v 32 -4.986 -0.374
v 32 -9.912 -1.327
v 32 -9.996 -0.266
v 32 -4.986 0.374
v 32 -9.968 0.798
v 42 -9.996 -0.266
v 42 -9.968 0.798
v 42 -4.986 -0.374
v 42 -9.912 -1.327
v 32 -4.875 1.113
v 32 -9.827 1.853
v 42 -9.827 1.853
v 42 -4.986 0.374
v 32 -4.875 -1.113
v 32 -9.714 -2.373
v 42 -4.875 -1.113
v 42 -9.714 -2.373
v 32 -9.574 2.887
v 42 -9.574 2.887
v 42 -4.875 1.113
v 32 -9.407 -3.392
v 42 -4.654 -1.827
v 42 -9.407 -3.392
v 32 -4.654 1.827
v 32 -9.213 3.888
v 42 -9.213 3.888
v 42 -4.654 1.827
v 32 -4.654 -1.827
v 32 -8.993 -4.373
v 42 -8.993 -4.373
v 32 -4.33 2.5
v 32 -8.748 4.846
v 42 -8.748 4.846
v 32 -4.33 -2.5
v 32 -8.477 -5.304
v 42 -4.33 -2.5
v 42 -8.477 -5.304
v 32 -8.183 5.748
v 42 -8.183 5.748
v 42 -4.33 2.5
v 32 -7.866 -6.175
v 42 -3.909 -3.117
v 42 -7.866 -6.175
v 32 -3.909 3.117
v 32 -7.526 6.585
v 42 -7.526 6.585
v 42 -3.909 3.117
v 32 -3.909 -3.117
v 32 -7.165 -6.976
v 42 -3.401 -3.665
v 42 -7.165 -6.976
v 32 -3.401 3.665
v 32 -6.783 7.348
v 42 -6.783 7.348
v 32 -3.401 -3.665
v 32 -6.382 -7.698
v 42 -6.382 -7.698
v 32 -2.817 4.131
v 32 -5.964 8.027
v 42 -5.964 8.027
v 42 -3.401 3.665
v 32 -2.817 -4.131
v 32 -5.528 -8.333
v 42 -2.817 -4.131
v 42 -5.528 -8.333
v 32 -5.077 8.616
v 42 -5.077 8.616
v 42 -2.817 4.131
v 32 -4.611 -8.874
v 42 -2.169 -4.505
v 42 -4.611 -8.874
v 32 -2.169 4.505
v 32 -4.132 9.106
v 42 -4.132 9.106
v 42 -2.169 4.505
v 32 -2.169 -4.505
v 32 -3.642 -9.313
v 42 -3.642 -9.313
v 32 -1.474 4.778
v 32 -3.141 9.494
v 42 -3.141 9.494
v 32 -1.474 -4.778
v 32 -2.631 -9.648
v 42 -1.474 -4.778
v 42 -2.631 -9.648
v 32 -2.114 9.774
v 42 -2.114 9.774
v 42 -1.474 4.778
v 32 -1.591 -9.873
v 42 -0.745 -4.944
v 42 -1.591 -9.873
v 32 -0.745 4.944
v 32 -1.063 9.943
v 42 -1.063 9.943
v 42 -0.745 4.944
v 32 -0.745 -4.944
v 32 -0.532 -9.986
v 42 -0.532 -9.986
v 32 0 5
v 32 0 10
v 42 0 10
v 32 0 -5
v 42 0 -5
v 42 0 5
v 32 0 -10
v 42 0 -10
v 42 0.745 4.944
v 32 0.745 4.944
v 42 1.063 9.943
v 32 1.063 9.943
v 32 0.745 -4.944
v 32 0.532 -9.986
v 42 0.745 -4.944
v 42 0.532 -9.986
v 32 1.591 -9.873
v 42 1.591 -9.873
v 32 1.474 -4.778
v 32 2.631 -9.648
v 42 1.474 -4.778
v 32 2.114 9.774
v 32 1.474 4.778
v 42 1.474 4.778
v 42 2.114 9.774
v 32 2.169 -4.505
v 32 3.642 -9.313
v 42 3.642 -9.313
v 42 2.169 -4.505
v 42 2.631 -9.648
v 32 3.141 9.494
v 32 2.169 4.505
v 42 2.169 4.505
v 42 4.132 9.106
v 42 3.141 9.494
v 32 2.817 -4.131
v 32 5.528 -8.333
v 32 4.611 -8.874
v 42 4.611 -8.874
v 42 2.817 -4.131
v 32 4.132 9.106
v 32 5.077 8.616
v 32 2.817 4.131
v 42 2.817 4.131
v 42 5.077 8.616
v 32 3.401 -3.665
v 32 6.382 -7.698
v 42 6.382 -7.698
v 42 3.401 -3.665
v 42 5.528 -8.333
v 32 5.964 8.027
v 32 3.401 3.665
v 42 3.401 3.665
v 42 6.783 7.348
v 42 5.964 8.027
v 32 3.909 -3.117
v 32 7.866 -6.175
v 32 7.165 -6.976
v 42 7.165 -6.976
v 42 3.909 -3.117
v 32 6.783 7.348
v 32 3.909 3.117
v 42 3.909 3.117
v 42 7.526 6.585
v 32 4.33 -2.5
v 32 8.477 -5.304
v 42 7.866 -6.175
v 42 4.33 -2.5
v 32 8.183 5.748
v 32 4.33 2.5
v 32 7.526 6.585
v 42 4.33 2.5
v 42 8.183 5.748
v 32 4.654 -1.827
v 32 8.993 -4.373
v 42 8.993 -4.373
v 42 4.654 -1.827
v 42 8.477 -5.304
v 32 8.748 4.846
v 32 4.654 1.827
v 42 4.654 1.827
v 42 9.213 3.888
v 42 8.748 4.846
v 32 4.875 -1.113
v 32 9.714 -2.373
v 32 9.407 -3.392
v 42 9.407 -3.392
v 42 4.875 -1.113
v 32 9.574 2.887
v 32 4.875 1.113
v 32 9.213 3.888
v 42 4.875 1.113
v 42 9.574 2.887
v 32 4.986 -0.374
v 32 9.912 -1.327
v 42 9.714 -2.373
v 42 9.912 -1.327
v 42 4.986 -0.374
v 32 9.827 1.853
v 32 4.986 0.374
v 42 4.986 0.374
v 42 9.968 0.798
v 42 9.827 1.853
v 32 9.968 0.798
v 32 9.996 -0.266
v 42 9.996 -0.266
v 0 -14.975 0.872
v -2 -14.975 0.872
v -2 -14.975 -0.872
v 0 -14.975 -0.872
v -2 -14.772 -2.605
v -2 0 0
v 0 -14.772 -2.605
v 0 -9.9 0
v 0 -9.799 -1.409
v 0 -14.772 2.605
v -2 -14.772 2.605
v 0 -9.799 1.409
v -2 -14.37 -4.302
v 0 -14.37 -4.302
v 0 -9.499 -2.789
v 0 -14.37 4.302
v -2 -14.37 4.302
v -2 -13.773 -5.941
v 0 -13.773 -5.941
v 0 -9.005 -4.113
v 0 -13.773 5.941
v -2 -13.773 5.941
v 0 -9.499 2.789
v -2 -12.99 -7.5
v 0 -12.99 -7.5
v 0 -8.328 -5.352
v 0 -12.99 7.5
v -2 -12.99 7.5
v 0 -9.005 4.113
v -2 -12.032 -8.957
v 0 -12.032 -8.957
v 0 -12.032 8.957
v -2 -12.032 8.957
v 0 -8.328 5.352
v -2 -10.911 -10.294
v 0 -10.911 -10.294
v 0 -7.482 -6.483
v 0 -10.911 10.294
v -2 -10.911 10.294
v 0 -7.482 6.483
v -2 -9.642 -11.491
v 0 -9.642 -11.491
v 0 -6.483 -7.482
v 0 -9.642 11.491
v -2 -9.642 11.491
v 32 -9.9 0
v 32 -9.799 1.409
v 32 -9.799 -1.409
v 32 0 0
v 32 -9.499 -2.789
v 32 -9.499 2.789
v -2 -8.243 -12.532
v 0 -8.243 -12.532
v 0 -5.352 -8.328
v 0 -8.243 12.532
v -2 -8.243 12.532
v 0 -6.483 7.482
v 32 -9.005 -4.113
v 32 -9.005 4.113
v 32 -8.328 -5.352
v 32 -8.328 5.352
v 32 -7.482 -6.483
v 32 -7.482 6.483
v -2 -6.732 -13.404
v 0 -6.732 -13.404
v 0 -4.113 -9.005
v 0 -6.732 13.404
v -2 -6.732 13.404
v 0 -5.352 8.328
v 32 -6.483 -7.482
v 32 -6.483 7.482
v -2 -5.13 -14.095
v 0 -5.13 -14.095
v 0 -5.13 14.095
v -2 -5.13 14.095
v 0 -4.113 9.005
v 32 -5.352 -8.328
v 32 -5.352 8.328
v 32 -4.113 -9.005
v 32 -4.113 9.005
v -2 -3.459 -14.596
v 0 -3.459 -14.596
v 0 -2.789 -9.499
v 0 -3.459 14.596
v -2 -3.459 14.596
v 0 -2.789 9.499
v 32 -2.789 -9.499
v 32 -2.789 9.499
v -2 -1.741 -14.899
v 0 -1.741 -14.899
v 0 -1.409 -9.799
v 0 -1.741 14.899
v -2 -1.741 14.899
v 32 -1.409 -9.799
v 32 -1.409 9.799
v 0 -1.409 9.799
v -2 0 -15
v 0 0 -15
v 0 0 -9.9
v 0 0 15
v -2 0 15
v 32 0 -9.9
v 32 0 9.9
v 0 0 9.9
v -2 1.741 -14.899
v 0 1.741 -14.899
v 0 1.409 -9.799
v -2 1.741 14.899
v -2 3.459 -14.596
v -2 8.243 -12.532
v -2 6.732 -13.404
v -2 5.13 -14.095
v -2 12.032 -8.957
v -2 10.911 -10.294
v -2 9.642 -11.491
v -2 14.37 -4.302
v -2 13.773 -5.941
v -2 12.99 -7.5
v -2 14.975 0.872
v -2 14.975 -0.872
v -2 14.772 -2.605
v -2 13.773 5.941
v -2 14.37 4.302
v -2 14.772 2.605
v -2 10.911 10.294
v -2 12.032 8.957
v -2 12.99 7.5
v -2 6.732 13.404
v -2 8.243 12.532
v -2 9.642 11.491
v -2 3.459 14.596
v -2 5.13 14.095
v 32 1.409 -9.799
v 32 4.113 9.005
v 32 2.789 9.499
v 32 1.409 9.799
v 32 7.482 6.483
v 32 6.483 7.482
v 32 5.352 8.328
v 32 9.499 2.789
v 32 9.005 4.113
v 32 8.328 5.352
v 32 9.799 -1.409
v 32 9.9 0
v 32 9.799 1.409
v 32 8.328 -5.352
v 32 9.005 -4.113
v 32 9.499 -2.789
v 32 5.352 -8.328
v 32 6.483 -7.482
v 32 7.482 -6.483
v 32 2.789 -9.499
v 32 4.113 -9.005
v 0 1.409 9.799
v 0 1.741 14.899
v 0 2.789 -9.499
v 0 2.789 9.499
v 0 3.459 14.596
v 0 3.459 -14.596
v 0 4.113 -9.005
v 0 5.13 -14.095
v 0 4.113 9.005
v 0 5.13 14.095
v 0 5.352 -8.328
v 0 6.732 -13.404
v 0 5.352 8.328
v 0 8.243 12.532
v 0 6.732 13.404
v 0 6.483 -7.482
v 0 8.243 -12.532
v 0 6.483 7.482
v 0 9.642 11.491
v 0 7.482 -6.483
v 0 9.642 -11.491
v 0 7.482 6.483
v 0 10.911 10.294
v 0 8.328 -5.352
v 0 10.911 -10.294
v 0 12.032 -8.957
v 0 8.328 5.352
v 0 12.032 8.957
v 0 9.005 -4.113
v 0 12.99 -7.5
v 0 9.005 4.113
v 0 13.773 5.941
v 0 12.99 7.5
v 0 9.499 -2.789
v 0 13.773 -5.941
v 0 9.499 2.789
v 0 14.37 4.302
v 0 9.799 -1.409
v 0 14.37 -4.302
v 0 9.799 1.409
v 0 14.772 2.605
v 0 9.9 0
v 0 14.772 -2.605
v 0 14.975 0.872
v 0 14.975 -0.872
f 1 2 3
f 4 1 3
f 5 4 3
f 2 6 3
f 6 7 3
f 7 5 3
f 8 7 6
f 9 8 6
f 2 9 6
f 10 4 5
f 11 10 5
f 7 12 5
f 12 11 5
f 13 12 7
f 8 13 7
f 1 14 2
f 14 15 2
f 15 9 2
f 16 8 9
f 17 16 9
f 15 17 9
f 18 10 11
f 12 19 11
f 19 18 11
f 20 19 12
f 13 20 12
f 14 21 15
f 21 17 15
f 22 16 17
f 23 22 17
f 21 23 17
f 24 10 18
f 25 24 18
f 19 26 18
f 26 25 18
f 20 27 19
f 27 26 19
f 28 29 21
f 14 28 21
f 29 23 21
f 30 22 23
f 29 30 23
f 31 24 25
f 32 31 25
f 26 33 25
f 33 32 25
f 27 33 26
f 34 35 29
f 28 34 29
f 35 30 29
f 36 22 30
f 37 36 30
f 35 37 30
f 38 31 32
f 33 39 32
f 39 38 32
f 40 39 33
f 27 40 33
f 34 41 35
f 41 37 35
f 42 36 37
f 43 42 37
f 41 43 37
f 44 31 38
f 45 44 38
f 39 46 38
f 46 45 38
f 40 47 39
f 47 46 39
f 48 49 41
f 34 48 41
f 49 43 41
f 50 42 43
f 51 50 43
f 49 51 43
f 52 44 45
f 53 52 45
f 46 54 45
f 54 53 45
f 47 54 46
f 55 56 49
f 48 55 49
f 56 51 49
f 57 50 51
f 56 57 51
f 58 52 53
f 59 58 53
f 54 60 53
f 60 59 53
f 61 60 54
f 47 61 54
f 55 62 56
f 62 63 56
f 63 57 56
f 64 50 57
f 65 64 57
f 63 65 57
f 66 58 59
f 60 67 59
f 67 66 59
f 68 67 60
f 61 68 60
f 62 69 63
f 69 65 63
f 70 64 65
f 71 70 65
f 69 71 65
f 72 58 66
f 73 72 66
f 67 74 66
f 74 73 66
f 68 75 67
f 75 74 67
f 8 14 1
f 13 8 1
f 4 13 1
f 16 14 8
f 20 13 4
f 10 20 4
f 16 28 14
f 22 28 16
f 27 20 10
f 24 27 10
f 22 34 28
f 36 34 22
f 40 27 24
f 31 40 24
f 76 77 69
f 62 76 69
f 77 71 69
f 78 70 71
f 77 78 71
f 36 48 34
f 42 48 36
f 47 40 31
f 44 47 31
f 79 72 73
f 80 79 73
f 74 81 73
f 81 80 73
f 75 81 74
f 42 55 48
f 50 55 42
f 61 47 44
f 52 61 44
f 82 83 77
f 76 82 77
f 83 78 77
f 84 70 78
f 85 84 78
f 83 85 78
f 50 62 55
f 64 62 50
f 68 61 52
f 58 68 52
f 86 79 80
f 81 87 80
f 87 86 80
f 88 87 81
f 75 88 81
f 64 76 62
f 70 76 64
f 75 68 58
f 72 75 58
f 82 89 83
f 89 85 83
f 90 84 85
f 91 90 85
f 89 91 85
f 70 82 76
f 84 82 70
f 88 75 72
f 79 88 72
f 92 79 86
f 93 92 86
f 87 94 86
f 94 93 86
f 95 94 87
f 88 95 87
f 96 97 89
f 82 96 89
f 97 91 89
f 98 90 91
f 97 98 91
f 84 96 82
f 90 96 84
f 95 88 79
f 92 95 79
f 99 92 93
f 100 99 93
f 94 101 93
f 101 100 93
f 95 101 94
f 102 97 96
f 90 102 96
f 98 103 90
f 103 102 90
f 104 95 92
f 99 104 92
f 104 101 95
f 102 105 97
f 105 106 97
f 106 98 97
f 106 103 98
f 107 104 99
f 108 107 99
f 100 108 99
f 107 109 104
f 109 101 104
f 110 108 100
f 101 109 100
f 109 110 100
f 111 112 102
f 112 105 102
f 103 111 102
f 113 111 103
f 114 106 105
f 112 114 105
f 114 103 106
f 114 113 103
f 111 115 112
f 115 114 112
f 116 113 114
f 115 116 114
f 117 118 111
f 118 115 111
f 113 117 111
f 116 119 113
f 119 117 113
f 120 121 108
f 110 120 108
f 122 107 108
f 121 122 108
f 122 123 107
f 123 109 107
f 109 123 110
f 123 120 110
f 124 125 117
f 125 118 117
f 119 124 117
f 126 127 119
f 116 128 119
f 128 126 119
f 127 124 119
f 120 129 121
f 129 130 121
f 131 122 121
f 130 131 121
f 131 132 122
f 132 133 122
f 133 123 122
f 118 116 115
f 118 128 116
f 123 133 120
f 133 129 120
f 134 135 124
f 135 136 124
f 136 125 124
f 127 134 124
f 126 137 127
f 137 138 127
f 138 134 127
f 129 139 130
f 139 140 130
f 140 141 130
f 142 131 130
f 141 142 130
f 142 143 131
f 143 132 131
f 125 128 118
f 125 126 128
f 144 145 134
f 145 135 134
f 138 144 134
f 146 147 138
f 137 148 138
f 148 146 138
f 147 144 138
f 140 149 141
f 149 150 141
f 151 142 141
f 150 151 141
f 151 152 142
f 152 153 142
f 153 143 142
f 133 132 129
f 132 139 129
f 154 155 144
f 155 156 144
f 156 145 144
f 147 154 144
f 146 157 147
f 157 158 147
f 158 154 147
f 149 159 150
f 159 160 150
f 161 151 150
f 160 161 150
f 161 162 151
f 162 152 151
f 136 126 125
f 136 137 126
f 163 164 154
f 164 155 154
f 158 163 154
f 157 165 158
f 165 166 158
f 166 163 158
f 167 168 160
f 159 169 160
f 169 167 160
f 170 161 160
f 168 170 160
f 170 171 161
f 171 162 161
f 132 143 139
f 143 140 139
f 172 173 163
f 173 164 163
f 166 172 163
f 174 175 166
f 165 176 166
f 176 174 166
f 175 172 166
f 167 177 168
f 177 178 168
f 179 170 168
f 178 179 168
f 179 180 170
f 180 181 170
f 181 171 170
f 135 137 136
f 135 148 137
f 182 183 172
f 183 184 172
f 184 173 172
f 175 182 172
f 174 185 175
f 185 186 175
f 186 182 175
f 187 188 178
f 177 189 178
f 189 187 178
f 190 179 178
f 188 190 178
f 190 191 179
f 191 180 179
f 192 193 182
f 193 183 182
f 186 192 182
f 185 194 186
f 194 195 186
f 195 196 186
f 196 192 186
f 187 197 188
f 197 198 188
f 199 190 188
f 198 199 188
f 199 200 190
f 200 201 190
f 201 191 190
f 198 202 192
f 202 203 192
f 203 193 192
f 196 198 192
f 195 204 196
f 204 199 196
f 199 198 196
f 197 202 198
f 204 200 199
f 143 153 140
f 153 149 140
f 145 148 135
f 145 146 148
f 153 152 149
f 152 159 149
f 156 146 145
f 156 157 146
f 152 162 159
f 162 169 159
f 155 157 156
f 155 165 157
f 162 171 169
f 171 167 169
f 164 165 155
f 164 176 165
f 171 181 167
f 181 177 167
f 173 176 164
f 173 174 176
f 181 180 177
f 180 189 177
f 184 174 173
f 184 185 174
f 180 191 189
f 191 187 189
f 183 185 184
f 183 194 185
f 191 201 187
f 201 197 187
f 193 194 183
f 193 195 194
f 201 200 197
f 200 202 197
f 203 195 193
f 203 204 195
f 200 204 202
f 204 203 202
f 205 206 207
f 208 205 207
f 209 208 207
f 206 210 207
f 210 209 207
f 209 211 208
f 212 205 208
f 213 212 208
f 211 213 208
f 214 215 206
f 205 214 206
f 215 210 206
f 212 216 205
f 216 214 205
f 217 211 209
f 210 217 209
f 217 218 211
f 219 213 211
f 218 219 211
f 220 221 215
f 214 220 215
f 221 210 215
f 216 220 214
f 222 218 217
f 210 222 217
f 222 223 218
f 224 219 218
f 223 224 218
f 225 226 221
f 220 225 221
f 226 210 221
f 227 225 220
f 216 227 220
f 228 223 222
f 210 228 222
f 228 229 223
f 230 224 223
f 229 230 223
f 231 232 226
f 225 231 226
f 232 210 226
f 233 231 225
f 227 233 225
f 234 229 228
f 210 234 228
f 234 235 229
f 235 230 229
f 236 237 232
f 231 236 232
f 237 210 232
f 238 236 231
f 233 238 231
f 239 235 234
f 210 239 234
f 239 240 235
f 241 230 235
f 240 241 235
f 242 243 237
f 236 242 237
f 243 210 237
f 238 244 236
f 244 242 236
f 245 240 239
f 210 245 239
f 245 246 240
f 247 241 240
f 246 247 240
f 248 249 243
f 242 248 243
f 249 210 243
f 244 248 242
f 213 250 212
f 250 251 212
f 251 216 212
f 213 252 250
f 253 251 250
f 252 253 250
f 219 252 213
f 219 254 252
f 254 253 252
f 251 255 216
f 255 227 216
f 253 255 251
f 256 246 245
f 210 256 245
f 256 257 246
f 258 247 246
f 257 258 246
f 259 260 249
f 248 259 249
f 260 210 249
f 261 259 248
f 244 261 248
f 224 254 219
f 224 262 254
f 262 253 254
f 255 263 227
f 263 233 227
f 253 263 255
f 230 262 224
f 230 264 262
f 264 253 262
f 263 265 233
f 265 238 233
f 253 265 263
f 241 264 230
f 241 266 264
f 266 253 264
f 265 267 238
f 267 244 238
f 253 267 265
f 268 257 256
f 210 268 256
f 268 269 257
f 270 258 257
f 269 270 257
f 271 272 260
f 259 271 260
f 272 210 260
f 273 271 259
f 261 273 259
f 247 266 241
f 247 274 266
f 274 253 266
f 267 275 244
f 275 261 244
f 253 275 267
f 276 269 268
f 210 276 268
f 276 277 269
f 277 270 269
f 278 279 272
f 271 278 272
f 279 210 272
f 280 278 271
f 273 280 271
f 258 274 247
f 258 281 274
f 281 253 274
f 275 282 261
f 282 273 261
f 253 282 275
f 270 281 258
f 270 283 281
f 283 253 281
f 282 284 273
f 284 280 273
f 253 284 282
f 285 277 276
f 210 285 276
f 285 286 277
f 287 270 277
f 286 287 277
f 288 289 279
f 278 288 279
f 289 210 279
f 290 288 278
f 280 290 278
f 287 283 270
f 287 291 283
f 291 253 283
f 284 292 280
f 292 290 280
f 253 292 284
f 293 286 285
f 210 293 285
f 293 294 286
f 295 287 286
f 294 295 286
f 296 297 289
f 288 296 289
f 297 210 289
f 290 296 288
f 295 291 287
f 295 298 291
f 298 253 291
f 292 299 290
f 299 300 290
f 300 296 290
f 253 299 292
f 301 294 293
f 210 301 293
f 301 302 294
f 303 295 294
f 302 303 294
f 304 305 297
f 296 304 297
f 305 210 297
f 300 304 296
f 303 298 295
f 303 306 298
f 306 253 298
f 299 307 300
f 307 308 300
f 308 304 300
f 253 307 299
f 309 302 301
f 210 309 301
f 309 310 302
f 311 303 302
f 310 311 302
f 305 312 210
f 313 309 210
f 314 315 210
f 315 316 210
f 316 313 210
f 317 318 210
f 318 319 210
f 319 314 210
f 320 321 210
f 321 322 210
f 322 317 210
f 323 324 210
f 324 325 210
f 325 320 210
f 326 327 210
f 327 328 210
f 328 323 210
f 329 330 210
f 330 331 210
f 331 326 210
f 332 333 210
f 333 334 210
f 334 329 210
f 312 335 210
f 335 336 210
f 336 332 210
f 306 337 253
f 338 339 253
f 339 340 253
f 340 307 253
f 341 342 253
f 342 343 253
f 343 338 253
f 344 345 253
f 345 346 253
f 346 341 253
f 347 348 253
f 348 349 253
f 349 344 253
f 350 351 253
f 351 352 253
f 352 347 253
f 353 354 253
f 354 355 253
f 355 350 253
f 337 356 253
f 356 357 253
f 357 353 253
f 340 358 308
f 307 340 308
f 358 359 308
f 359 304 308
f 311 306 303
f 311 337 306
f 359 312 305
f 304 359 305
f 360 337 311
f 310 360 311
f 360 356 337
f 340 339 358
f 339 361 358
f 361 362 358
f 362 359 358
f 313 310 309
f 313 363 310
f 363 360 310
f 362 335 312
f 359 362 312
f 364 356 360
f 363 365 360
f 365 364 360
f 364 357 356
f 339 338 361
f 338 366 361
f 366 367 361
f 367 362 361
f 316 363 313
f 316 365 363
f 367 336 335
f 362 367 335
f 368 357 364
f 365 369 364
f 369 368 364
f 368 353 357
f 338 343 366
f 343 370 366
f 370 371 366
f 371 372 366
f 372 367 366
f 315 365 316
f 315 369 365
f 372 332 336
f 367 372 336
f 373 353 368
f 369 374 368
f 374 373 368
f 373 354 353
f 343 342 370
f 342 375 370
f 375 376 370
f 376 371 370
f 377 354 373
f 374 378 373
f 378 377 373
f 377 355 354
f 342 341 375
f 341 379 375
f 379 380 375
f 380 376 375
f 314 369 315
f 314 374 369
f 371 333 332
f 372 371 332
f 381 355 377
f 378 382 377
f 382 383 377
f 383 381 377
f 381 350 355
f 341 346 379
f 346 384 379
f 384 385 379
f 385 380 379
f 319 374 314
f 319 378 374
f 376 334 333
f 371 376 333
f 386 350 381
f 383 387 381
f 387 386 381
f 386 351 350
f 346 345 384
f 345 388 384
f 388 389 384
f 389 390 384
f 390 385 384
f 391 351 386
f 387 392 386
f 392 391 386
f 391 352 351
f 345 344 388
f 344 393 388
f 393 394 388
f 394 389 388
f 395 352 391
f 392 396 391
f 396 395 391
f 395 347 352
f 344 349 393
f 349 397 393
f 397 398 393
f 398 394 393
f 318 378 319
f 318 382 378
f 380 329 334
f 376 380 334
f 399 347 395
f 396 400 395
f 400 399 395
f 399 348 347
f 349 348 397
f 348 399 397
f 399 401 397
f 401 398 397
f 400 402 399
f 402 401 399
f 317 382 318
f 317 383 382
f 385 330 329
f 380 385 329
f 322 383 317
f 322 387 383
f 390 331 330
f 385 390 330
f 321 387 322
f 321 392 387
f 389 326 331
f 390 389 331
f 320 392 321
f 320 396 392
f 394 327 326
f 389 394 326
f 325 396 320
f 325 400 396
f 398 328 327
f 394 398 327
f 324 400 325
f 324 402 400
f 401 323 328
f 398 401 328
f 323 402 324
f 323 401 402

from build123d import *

# Parameters (mm, degrees)
SKETCH1_R           = 9.9
BOSS_EXTRUDE1_DEPTH = 32
SKETCH2_R           = 10
SKETCH2_R_2         = 5
BOSS_EXTRUDE2_DEPTH = 10
SKETCH3_R           = 15
BOSS_EXTRUDE3_DEPTH = 2


with BuildPart() as part:
    # Sketch1 → Boss-Extrude1 (new body)
    with BuildSketch(Plane(origin=(0, 0, 0), x_dir=(0, 0, -1), z_dir=(1, 0, 0))):
        Circle(SKETCH1_R)
    extrude(amount=BOSS_EXTRUDE1_DEPTH)

    # Sketch3 → Boss-Extrude3 (add)
    with BuildSketch(Plane.ZY):
        Circle(SKETCH3_R)
    extrude(amount=BOSS_EXTRUDE3_DEPTH)


with BuildPart() as body_2:
    # Sketch2 → Boss-Extrude2 (new body)
    with BuildSketch(Plane(origin=(32, 0, 0), x_dir=(0, 0, -1), z_dir=(1, 0, 0))):
        Circle(SKETCH2_R)
        Circle(SKETCH2_R_2, mode=Mode.SUBTRACT)
    extrude(amount=BOSS_EXTRUDE2_DEPTH)


solid = Compound([part.part, body_2.part])
